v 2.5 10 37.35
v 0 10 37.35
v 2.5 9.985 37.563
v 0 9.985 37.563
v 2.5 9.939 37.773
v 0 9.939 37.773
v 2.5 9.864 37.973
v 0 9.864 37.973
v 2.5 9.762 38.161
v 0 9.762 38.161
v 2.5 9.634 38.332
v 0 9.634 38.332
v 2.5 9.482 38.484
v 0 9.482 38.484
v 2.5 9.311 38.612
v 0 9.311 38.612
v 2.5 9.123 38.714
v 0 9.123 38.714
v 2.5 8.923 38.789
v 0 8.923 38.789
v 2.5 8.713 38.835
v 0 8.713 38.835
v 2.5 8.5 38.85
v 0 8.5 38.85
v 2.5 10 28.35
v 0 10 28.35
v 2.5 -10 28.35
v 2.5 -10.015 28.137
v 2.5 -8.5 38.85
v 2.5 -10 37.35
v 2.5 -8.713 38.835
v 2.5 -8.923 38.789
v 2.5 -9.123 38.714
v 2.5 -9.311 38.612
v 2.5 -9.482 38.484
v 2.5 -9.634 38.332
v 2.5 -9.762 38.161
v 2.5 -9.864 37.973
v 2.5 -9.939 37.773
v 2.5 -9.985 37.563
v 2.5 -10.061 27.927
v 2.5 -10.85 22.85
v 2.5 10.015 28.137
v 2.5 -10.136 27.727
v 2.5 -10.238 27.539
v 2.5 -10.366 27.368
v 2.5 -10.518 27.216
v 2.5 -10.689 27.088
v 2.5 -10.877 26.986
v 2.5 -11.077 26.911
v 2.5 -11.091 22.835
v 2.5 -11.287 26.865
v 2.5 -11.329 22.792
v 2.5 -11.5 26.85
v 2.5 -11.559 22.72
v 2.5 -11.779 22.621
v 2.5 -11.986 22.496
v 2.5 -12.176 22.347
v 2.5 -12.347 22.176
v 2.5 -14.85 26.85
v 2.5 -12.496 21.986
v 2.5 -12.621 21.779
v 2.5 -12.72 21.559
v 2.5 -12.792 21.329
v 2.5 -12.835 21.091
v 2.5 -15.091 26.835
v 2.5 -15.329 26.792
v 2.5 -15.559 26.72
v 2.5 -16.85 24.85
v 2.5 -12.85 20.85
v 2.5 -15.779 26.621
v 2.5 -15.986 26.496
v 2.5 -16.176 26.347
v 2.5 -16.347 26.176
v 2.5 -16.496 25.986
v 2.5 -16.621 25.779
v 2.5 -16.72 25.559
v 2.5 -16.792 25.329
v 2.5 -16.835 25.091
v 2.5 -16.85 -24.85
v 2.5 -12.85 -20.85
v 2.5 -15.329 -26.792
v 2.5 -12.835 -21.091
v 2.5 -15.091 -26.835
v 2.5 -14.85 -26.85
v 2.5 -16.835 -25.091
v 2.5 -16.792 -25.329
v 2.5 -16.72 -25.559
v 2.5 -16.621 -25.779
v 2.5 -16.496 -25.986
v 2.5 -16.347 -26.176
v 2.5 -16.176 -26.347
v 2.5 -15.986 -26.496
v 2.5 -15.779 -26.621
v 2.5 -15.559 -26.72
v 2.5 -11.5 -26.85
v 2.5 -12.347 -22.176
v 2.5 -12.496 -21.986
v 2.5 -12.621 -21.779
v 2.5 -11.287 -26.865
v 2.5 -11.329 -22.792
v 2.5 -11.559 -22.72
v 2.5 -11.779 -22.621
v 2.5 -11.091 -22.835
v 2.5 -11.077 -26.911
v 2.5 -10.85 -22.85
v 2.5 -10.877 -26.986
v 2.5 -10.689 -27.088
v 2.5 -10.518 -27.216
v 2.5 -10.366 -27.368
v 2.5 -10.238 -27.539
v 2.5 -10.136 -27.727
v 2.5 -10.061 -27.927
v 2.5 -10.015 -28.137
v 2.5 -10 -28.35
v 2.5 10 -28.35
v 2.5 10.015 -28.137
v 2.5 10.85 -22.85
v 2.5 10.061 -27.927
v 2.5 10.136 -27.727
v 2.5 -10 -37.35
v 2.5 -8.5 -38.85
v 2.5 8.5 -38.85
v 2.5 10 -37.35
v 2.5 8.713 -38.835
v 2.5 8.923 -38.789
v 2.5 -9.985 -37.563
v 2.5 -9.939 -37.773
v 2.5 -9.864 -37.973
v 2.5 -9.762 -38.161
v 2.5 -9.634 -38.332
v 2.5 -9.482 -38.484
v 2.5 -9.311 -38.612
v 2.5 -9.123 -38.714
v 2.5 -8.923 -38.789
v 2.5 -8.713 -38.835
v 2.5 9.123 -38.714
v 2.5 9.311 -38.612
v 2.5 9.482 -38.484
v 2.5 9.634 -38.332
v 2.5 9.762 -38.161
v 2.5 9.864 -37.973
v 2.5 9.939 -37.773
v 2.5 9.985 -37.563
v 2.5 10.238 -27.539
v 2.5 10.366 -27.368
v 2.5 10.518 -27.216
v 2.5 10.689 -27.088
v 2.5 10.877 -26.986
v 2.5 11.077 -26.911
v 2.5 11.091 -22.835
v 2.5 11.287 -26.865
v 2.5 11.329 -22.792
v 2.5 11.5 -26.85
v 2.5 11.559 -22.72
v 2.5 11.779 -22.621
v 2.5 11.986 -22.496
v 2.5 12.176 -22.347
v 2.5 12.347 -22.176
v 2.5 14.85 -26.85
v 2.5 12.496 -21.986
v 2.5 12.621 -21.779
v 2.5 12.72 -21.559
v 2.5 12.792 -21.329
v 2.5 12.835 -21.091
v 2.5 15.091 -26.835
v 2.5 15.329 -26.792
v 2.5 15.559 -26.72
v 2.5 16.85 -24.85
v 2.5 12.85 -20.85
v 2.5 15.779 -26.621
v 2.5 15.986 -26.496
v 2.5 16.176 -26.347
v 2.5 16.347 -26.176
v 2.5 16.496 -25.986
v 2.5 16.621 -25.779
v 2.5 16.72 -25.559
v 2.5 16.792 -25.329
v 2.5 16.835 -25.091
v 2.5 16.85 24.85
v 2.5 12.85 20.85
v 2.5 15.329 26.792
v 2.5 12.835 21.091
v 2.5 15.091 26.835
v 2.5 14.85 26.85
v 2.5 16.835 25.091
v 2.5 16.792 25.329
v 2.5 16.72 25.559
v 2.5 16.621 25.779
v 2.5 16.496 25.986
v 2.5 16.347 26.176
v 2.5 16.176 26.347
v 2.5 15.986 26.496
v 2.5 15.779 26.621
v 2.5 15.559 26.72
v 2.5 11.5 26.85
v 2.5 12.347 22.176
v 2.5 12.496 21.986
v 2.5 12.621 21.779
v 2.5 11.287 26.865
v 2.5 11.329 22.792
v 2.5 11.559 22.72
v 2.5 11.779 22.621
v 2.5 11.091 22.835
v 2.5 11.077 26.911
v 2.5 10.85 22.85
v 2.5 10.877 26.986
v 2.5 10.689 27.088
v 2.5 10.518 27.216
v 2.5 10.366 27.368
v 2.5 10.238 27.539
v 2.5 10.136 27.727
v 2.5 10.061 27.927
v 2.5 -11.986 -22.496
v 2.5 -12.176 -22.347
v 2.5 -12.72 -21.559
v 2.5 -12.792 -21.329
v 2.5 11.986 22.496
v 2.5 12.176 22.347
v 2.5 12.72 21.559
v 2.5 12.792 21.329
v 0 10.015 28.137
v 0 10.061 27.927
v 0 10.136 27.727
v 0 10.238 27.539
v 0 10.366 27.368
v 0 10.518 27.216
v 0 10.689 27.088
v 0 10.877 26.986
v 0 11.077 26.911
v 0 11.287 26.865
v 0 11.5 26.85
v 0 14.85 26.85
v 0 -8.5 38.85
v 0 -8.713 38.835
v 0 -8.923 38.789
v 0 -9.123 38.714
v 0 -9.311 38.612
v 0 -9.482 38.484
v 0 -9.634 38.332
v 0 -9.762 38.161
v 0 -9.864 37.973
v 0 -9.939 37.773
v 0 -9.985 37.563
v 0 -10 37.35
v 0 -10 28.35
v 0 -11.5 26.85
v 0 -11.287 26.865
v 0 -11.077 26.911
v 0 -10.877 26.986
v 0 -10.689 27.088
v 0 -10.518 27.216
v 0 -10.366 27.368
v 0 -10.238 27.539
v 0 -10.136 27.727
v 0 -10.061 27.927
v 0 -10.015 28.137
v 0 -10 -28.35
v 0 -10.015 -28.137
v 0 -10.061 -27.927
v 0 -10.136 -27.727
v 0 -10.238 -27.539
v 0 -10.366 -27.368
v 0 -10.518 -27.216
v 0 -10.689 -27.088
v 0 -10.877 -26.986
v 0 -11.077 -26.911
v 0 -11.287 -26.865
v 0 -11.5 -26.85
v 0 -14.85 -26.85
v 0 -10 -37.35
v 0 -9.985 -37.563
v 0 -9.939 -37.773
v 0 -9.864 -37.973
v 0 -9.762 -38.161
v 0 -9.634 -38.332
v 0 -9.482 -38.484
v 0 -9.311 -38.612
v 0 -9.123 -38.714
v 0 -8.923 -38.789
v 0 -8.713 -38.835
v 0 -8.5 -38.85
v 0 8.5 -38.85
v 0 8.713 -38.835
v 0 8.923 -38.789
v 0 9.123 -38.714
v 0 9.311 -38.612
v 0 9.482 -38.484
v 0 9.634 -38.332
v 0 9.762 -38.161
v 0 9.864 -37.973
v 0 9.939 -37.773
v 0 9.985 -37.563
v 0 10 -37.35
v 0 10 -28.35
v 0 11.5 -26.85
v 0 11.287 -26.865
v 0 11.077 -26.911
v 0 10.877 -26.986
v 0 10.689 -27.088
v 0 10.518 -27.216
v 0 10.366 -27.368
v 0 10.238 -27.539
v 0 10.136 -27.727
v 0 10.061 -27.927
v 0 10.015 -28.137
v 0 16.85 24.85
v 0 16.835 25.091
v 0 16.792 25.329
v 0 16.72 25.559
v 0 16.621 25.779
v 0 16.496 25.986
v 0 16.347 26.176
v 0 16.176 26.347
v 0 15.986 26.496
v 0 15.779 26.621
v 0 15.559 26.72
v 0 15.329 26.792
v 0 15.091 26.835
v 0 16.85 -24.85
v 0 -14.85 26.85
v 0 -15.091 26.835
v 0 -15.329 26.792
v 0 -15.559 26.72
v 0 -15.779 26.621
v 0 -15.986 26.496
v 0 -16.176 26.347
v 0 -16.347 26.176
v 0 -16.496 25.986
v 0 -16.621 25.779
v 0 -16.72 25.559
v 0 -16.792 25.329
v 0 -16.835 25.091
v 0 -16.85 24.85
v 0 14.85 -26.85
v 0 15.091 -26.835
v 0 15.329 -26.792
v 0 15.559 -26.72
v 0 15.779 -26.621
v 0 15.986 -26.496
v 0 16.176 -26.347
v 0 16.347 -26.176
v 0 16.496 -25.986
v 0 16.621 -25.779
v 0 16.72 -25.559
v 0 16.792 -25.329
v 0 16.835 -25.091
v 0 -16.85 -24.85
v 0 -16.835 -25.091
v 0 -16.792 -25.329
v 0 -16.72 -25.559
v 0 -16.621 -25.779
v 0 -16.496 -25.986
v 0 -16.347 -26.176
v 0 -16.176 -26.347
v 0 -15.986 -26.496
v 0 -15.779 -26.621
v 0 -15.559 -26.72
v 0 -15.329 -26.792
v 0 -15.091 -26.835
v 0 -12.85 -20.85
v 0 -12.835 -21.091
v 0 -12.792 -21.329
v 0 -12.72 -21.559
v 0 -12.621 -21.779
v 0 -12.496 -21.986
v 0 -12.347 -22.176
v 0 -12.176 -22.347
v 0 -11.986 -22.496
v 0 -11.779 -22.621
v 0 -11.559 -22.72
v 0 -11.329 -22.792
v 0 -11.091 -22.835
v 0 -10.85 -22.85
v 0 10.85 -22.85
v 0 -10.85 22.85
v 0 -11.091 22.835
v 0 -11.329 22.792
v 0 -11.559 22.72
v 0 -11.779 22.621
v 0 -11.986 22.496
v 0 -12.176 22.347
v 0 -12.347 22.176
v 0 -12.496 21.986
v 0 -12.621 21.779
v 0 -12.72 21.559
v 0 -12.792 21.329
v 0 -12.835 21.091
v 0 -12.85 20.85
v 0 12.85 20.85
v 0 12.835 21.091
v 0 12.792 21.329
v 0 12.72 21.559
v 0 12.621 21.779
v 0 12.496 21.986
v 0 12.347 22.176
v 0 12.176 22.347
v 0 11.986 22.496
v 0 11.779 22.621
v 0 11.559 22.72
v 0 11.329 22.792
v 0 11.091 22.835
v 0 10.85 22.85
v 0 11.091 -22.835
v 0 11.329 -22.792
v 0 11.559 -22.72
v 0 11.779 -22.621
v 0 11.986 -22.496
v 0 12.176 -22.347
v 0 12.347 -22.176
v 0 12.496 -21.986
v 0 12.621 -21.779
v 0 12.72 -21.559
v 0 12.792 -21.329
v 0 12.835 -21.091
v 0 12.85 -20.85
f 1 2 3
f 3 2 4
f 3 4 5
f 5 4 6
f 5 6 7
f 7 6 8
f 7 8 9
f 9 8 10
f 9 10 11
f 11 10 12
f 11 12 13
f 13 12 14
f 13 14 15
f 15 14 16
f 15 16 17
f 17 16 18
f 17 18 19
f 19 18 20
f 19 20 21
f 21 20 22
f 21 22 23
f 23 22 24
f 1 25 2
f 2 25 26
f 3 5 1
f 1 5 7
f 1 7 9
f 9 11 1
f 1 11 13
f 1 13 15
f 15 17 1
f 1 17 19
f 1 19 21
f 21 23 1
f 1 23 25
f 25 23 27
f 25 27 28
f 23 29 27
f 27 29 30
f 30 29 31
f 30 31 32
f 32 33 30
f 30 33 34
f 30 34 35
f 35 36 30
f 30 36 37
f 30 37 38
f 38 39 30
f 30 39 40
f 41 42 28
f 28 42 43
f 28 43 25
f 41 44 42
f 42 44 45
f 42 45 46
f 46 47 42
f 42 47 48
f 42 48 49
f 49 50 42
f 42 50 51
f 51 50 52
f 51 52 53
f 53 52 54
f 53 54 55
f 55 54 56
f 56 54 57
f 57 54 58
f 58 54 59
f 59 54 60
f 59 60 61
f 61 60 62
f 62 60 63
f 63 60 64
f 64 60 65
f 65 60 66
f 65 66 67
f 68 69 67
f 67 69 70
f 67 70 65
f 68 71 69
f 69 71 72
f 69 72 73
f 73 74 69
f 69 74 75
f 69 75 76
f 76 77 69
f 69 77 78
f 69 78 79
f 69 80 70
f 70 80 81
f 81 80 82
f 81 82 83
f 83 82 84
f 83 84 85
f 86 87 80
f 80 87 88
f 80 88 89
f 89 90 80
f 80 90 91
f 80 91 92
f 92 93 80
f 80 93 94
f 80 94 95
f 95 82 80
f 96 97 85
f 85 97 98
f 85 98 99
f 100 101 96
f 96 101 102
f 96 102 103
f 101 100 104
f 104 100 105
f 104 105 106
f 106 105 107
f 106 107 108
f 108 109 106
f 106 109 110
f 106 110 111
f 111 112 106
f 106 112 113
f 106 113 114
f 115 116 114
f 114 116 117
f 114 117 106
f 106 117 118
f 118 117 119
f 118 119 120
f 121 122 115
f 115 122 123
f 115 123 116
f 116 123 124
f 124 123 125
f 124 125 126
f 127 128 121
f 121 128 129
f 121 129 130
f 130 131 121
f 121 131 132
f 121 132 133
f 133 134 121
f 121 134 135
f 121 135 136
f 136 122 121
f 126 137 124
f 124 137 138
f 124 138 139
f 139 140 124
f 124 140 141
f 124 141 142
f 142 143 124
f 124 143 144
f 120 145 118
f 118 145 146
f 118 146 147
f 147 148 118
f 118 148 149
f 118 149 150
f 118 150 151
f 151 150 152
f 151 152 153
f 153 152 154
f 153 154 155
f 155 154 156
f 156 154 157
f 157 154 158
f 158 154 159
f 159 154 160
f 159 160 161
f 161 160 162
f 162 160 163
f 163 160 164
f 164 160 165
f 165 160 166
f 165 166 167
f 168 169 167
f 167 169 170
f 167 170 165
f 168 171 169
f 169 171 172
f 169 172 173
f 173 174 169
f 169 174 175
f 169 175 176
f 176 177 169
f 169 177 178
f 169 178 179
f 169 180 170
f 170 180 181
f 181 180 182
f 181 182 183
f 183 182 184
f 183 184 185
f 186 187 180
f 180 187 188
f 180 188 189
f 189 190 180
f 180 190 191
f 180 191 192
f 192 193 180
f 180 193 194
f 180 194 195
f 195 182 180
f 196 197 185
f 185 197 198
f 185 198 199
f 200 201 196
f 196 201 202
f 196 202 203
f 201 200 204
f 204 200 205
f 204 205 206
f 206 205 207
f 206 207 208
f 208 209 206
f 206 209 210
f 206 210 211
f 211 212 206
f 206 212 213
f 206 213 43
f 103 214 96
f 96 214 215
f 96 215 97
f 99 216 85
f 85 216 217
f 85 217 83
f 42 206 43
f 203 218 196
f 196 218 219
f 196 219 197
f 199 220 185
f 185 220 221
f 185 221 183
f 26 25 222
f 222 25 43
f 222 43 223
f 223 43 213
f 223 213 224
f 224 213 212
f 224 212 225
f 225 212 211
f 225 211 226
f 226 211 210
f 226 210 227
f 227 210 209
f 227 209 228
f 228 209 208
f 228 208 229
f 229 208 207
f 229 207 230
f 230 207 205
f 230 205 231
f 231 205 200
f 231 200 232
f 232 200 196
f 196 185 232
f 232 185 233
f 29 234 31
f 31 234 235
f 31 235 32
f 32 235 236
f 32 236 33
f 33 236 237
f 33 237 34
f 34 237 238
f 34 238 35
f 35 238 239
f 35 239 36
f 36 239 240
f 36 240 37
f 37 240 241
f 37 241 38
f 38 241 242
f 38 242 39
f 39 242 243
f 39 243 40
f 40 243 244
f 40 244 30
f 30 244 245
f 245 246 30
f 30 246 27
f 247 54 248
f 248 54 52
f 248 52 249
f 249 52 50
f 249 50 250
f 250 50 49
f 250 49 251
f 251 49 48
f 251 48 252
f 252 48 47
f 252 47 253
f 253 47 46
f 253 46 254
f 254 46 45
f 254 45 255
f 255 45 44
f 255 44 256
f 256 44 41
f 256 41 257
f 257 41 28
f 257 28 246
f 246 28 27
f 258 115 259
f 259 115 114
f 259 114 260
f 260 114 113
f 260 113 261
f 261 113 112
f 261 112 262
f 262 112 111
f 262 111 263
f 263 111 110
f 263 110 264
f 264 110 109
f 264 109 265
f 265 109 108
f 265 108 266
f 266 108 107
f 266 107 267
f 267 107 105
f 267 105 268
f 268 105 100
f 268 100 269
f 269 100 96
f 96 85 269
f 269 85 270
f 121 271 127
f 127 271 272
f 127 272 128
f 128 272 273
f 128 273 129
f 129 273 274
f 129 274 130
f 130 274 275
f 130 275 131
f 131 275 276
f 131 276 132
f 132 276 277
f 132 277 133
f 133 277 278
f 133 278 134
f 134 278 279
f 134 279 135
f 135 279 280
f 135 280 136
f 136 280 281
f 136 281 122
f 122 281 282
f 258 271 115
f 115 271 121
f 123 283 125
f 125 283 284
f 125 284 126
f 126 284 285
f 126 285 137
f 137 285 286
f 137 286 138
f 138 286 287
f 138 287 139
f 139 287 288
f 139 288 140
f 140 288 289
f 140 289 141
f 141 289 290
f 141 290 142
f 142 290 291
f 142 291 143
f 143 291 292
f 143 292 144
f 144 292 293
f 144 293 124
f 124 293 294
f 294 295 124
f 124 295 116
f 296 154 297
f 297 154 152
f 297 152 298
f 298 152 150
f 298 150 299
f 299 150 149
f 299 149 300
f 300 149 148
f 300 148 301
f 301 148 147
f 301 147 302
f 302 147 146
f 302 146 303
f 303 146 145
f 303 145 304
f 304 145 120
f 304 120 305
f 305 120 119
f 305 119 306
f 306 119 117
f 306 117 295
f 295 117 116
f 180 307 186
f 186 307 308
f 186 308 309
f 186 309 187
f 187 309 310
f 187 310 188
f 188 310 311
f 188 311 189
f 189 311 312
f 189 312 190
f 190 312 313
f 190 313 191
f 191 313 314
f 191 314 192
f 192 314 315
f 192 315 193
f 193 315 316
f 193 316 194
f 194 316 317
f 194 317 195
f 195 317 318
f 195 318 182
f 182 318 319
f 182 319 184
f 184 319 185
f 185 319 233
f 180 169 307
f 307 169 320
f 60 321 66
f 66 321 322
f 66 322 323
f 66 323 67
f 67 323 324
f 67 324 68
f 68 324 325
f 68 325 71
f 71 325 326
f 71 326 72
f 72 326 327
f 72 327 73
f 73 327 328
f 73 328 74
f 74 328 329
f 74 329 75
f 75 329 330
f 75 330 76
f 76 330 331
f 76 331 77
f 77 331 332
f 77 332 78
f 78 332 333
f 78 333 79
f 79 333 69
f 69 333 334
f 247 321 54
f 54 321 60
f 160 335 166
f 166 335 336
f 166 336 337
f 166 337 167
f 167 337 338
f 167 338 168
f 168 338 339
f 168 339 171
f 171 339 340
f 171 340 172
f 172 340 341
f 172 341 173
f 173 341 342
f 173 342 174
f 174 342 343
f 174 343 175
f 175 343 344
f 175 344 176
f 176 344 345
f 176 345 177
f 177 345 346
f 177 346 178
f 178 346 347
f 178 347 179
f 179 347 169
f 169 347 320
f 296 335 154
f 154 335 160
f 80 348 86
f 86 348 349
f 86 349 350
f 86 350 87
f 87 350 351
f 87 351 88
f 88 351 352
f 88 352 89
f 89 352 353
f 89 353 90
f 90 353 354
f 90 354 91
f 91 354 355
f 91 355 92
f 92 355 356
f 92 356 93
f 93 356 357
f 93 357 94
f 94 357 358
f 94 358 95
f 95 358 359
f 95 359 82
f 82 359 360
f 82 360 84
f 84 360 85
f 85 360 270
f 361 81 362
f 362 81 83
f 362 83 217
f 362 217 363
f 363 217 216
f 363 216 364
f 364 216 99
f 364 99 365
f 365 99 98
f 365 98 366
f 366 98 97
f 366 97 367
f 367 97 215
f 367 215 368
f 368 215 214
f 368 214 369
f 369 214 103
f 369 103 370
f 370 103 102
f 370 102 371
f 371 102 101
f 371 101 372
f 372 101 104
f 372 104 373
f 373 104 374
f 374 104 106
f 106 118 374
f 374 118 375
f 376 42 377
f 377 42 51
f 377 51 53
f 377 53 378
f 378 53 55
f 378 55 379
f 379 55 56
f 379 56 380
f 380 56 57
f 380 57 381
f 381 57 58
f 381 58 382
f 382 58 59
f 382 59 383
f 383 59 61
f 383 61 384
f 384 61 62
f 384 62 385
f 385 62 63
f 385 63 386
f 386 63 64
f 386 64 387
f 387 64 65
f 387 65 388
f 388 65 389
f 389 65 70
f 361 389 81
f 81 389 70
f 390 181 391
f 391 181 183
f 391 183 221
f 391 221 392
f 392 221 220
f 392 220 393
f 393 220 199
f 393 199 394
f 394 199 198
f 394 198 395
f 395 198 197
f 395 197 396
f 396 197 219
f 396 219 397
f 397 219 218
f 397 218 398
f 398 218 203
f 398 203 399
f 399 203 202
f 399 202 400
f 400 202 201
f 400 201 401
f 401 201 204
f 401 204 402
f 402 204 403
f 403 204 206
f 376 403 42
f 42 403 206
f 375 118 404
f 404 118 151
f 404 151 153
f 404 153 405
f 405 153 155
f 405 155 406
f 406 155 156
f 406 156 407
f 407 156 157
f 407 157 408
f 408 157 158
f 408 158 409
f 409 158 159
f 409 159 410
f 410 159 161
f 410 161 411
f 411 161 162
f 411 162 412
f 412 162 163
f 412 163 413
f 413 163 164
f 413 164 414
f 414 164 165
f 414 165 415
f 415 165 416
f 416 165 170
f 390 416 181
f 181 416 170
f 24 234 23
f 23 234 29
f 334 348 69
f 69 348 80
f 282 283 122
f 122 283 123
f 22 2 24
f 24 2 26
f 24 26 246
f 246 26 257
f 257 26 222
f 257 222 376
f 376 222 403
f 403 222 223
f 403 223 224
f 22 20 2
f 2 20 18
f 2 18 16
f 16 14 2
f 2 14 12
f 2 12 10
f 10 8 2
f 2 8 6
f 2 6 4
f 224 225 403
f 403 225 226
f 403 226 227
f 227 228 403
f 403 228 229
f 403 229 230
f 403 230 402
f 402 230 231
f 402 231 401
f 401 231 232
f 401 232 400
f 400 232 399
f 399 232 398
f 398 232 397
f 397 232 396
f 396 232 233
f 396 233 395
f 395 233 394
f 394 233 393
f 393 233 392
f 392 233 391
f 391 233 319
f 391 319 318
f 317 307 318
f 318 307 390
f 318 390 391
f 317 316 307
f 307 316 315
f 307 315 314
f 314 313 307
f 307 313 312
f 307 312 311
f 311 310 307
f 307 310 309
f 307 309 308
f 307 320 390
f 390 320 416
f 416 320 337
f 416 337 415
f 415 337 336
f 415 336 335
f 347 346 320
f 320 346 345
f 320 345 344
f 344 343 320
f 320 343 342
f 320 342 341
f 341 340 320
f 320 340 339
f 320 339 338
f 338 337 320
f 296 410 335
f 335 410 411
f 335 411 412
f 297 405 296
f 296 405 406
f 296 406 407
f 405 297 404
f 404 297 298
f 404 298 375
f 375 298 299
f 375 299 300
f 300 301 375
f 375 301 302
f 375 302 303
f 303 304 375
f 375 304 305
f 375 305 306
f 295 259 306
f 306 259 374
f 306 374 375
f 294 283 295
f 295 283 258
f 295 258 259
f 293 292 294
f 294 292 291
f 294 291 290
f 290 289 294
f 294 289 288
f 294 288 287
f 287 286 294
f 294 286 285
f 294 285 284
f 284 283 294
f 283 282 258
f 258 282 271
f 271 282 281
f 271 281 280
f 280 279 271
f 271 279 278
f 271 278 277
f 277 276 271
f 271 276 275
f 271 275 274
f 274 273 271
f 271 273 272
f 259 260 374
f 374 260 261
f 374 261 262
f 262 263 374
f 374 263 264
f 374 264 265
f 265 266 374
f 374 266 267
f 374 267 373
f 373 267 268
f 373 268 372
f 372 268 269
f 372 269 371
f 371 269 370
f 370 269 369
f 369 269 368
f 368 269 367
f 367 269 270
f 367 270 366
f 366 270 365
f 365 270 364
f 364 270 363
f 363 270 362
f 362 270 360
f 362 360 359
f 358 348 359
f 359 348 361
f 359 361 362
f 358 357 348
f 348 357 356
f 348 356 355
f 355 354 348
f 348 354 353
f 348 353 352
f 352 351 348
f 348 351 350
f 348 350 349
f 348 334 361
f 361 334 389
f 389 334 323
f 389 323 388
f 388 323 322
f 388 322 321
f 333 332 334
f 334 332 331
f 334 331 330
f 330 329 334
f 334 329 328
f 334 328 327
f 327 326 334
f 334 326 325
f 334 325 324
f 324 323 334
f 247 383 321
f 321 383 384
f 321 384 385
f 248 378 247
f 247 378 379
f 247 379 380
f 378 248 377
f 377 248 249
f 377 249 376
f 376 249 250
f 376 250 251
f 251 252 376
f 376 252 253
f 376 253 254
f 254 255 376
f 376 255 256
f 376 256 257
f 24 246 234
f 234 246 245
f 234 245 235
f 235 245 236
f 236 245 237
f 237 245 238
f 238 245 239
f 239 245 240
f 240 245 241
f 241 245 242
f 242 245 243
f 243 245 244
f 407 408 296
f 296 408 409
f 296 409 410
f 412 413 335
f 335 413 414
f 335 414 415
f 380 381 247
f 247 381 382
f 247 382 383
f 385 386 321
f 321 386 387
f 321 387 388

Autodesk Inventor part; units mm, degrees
ref_plane "YZ Plane" through (0, 0, 0) normal (1, 0, 0) x (0, 1, 0)
ref_plane "XZ Plane" through (0, 0, 0) normal (0, 1, 0) x (-1, 0, 0)
ref_plane "XY Plane" through (0, 0, 0) normal (0, 0, 1) x (1, 0, 0)
sketch "スケッチ1" plane through (0, 0, 0) normal (1, 0, 0) x (0, 1, 0)
  line L0 (-12.85, 22.85) -> (12.85, 22.85)
  line L1 (12.85, 22.85) -> (12.85, -22.85)
  line L2 (12.85, -22.85) -> (-12.85, -22.85)
  line L3 (-12.85, -22.85) -> (-12.85, 22.85)
  line L4 (-12.85, 22.85) -> (12.85, -22.85) construction
  line L5 (12.85, 22.85) -> (-12.85, -22.85) construction
  line L6 (16.85, -26.85) -> (16.85, 26.85)
  line L7 (16.85, 26.85) -> (-16.85, 26.85)
  line L8 (-16.85, 26.85) -> (-16.85, -26.85)
  line L9 (-16.85, -26.85) -> (16.85, -26.85)
  line L10 (-10, 14.85) -> (10, 14.85)
  line L11 (10, 14.85) -> (10, 38.85)
  line L12 (10, 38.85) -> (-10, 38.85)
  line L13 (-10, 38.85) -> (-10, 14.85)
  line L14 (-10, 14.85) -> (10, 38.85) construction
  line L15 (10, 14.85) -> (-10, 38.85) construction
  line L16 (-10, -14.85) -> (10, -14.85)
  line L17 (10, -14.85) -> (10, -38.85)
  line L18 (10, -38.85) -> (-10, -38.85)
  line L19 (-10, -38.85) -> (-10, -14.85)
  line L20 (-10, -14.85) -> (10, -38.85) construction
  line L21 (10, -14.85) -> (-10, -38.85) construction
  point P0 (0, 0)
  point P1 (0, 26.85)
  point P2 (0, -26.85)
  point P3 (10, -26.85)
  point P4 (-10, -26.85)
  point P5 (-10, 26.85)
  point P6 (10, 26.85)
  dimension "d0" = 25.7
  dimension "d1" = 45.7
  dimension "d2" = 4
  dimension "d5" = 12
  dimension "d6" = 12
  dimension "d7" = 20
  dimension "d8" = 20
extrude "押し出し1" add sketch "スケッチ1" along normal blind 2.5 contours L3 L2 L19 L9 L8 L7 L13 L0 | L13 L7 L11 L0 | L11 L7 L6 L9 L17 L2 L1 L0 | L13 L12 L11 L7 | L2 L17 L9 L19 | L9 L17 L18 L19
fillet "フィレット1" radius 2 8 edges at (1.25, 12.85, 22.85) (1.25, 12.85, -22.85) (1.25, -12.85, -22.85) (1.25, -12.85, 22.85) (1.25, -16.85, 26.85) (1.25, 16.85, 26.85) (1.25, -16.85, -26.85) (1.25, 16.85, -26.85)
fillet "フィレット2" radius 1.5 8 edges at (1.25, 10, 26.85) (1.25, 10, 38.85) (1.25, -10, 38.85) (1.25, -10, 26.85) (1.25, -10, -26.85) (1.25, -10, -38.85) (1.25, 10, -26.85) (1.25, 10, -38.85)
equation "\"d6\" = d5"
equation "\"d8\" = d7"
properties part number "GRS104_hygrometer_fixture_3D プリント"
